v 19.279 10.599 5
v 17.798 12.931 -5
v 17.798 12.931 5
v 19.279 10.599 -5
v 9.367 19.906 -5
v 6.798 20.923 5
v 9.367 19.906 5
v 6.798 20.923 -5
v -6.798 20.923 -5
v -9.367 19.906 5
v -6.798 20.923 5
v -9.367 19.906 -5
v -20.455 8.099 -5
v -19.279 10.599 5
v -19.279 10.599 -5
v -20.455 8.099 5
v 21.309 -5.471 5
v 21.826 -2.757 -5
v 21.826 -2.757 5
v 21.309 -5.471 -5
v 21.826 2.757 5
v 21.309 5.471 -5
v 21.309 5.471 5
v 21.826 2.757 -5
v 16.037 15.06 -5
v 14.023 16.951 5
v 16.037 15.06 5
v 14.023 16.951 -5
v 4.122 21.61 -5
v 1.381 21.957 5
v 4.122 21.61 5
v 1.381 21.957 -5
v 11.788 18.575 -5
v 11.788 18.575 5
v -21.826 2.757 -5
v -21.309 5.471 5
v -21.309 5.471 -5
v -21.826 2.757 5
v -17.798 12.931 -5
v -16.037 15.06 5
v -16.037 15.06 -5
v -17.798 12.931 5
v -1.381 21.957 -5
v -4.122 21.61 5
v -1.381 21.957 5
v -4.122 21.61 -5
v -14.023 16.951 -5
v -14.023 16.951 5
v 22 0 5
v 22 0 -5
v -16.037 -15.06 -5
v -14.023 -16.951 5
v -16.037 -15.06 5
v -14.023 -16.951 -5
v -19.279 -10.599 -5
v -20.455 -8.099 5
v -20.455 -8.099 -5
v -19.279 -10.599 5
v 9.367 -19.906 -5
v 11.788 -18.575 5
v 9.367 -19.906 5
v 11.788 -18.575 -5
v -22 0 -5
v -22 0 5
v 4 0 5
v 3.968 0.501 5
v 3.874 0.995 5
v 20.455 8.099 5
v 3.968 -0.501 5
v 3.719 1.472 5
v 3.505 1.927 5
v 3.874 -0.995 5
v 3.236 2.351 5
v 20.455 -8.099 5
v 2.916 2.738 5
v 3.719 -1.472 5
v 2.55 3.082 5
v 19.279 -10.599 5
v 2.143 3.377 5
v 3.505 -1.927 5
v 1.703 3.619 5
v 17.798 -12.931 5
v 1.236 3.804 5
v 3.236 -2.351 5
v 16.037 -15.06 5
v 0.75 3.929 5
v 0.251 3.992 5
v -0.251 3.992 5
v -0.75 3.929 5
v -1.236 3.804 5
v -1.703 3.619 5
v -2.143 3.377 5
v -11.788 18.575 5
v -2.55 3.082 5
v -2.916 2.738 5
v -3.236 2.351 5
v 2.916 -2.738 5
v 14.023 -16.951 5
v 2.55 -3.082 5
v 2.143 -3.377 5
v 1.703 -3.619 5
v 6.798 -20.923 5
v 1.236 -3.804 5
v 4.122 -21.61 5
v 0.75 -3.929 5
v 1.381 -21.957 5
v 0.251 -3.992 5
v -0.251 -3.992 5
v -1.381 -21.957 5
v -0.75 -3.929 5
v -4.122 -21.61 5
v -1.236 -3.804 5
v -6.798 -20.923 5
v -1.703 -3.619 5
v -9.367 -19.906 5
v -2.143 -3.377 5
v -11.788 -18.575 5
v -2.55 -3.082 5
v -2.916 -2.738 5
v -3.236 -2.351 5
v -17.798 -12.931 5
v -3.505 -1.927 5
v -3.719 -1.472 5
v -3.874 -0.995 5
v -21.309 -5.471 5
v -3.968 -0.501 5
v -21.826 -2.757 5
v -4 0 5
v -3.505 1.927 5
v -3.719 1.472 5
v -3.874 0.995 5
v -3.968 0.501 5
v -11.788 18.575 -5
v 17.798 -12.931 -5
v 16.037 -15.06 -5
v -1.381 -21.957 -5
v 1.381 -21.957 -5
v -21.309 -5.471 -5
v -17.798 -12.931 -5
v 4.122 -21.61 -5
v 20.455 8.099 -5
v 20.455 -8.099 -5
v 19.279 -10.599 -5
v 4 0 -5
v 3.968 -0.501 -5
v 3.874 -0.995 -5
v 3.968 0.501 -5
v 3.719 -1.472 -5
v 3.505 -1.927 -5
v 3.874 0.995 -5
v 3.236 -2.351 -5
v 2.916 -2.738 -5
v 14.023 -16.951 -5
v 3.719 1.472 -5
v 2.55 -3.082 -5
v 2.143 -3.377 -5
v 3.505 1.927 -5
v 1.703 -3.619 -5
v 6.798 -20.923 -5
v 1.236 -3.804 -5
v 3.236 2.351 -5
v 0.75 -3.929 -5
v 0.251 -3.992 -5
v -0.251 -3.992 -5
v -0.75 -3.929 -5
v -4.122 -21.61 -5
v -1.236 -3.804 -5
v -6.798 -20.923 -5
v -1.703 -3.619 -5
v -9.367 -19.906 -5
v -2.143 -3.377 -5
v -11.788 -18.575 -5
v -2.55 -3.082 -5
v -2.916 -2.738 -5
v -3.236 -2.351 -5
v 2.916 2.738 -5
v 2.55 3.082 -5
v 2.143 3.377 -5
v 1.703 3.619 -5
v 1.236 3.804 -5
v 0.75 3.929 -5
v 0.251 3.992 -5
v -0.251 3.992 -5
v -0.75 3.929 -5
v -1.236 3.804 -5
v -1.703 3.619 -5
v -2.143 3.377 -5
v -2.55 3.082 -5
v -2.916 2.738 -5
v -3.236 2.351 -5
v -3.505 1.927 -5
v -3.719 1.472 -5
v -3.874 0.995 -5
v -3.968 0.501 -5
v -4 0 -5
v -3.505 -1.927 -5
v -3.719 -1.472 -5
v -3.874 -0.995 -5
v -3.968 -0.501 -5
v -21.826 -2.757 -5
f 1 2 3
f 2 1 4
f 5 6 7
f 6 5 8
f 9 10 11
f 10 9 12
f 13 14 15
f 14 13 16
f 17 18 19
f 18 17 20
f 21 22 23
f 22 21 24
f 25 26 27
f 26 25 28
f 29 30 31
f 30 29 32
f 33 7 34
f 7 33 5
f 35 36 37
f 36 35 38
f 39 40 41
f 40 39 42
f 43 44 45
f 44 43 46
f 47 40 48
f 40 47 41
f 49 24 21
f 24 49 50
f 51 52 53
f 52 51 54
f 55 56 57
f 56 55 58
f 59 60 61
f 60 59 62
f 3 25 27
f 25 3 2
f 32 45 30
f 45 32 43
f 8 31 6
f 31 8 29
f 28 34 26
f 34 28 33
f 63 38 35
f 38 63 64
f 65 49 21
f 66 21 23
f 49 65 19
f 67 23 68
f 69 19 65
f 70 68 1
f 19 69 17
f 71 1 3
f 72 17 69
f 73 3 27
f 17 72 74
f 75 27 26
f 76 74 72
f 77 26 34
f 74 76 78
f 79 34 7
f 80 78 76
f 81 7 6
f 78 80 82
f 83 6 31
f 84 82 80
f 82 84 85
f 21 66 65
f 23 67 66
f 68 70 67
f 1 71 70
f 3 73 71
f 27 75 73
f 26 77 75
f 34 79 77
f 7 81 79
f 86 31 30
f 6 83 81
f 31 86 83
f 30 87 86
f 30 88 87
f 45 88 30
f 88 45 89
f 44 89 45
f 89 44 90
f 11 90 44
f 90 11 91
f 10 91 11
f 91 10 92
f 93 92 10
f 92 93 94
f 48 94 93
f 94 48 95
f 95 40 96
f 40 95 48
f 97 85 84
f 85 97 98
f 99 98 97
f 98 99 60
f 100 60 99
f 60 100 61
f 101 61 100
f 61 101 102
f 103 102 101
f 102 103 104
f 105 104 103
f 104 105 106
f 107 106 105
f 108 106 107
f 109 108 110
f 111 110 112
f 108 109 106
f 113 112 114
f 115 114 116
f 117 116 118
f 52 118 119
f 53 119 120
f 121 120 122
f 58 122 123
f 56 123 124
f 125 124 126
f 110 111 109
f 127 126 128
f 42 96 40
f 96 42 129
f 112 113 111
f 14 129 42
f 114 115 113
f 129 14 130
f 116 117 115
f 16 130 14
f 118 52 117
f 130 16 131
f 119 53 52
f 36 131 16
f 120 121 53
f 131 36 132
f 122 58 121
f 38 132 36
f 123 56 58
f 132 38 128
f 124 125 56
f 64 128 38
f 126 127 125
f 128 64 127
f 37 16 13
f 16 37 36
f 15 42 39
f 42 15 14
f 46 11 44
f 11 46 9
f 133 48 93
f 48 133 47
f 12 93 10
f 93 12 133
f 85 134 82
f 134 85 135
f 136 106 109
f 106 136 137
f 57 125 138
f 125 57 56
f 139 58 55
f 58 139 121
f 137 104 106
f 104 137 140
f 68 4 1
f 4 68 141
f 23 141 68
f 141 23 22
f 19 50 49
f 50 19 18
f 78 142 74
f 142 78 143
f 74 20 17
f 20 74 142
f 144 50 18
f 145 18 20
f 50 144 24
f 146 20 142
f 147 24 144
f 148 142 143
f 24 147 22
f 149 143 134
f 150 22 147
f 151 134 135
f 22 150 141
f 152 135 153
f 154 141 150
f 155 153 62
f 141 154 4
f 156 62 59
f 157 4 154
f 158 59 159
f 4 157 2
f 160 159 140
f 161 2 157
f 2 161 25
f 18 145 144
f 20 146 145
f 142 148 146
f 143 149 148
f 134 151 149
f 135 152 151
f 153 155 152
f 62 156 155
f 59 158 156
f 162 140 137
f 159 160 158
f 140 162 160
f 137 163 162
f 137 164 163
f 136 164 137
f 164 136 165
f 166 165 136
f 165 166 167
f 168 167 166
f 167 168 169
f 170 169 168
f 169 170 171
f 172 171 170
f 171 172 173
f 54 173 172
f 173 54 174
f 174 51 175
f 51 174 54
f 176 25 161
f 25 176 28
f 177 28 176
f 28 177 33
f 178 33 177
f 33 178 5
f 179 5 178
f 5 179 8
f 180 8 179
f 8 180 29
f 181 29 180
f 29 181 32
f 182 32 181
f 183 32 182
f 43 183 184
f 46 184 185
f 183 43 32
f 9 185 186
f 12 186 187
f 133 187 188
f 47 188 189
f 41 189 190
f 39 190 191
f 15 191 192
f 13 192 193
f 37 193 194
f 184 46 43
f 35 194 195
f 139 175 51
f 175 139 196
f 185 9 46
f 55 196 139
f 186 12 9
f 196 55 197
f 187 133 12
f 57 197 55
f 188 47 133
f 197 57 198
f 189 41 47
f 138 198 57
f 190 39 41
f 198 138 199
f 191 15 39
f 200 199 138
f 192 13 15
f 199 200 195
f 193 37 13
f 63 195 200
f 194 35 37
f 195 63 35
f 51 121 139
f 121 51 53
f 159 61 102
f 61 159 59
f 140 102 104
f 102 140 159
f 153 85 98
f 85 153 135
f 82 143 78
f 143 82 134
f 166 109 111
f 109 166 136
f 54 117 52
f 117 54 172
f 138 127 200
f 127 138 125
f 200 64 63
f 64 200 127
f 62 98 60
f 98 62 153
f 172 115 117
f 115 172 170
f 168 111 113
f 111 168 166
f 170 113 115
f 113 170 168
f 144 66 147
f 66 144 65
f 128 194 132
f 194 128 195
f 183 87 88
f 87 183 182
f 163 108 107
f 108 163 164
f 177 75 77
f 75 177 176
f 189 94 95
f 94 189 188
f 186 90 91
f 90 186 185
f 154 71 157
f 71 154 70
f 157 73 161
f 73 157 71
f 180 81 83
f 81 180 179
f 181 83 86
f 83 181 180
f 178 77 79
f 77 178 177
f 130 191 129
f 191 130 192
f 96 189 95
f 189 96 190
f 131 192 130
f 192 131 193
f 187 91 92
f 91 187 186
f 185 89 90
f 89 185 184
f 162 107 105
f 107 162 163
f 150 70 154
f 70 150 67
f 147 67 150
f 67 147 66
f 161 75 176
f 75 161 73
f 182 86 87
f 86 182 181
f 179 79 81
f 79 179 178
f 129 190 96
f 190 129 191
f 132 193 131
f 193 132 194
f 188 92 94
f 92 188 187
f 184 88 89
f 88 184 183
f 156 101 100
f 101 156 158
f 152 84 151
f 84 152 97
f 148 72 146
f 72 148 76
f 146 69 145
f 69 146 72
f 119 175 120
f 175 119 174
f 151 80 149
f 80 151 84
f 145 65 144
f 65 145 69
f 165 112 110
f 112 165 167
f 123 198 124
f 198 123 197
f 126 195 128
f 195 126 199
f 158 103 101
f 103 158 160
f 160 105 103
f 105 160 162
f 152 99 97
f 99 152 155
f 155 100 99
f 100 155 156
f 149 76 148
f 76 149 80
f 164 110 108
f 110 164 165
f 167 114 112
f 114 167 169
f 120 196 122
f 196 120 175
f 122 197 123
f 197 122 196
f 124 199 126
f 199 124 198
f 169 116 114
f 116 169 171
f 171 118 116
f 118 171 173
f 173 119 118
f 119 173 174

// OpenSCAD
$fn = 50;


difference() {
	union() {
		translate(v = [0, 0, -5.0000000000]) {
			cylinder(h = 10, r = 22.0000000000);
		}
	}
	union() {
		translate(v = [0, 0, -100.0000000000]) {
			cylinder(h = 200, r = 4);
		}
	}
}
